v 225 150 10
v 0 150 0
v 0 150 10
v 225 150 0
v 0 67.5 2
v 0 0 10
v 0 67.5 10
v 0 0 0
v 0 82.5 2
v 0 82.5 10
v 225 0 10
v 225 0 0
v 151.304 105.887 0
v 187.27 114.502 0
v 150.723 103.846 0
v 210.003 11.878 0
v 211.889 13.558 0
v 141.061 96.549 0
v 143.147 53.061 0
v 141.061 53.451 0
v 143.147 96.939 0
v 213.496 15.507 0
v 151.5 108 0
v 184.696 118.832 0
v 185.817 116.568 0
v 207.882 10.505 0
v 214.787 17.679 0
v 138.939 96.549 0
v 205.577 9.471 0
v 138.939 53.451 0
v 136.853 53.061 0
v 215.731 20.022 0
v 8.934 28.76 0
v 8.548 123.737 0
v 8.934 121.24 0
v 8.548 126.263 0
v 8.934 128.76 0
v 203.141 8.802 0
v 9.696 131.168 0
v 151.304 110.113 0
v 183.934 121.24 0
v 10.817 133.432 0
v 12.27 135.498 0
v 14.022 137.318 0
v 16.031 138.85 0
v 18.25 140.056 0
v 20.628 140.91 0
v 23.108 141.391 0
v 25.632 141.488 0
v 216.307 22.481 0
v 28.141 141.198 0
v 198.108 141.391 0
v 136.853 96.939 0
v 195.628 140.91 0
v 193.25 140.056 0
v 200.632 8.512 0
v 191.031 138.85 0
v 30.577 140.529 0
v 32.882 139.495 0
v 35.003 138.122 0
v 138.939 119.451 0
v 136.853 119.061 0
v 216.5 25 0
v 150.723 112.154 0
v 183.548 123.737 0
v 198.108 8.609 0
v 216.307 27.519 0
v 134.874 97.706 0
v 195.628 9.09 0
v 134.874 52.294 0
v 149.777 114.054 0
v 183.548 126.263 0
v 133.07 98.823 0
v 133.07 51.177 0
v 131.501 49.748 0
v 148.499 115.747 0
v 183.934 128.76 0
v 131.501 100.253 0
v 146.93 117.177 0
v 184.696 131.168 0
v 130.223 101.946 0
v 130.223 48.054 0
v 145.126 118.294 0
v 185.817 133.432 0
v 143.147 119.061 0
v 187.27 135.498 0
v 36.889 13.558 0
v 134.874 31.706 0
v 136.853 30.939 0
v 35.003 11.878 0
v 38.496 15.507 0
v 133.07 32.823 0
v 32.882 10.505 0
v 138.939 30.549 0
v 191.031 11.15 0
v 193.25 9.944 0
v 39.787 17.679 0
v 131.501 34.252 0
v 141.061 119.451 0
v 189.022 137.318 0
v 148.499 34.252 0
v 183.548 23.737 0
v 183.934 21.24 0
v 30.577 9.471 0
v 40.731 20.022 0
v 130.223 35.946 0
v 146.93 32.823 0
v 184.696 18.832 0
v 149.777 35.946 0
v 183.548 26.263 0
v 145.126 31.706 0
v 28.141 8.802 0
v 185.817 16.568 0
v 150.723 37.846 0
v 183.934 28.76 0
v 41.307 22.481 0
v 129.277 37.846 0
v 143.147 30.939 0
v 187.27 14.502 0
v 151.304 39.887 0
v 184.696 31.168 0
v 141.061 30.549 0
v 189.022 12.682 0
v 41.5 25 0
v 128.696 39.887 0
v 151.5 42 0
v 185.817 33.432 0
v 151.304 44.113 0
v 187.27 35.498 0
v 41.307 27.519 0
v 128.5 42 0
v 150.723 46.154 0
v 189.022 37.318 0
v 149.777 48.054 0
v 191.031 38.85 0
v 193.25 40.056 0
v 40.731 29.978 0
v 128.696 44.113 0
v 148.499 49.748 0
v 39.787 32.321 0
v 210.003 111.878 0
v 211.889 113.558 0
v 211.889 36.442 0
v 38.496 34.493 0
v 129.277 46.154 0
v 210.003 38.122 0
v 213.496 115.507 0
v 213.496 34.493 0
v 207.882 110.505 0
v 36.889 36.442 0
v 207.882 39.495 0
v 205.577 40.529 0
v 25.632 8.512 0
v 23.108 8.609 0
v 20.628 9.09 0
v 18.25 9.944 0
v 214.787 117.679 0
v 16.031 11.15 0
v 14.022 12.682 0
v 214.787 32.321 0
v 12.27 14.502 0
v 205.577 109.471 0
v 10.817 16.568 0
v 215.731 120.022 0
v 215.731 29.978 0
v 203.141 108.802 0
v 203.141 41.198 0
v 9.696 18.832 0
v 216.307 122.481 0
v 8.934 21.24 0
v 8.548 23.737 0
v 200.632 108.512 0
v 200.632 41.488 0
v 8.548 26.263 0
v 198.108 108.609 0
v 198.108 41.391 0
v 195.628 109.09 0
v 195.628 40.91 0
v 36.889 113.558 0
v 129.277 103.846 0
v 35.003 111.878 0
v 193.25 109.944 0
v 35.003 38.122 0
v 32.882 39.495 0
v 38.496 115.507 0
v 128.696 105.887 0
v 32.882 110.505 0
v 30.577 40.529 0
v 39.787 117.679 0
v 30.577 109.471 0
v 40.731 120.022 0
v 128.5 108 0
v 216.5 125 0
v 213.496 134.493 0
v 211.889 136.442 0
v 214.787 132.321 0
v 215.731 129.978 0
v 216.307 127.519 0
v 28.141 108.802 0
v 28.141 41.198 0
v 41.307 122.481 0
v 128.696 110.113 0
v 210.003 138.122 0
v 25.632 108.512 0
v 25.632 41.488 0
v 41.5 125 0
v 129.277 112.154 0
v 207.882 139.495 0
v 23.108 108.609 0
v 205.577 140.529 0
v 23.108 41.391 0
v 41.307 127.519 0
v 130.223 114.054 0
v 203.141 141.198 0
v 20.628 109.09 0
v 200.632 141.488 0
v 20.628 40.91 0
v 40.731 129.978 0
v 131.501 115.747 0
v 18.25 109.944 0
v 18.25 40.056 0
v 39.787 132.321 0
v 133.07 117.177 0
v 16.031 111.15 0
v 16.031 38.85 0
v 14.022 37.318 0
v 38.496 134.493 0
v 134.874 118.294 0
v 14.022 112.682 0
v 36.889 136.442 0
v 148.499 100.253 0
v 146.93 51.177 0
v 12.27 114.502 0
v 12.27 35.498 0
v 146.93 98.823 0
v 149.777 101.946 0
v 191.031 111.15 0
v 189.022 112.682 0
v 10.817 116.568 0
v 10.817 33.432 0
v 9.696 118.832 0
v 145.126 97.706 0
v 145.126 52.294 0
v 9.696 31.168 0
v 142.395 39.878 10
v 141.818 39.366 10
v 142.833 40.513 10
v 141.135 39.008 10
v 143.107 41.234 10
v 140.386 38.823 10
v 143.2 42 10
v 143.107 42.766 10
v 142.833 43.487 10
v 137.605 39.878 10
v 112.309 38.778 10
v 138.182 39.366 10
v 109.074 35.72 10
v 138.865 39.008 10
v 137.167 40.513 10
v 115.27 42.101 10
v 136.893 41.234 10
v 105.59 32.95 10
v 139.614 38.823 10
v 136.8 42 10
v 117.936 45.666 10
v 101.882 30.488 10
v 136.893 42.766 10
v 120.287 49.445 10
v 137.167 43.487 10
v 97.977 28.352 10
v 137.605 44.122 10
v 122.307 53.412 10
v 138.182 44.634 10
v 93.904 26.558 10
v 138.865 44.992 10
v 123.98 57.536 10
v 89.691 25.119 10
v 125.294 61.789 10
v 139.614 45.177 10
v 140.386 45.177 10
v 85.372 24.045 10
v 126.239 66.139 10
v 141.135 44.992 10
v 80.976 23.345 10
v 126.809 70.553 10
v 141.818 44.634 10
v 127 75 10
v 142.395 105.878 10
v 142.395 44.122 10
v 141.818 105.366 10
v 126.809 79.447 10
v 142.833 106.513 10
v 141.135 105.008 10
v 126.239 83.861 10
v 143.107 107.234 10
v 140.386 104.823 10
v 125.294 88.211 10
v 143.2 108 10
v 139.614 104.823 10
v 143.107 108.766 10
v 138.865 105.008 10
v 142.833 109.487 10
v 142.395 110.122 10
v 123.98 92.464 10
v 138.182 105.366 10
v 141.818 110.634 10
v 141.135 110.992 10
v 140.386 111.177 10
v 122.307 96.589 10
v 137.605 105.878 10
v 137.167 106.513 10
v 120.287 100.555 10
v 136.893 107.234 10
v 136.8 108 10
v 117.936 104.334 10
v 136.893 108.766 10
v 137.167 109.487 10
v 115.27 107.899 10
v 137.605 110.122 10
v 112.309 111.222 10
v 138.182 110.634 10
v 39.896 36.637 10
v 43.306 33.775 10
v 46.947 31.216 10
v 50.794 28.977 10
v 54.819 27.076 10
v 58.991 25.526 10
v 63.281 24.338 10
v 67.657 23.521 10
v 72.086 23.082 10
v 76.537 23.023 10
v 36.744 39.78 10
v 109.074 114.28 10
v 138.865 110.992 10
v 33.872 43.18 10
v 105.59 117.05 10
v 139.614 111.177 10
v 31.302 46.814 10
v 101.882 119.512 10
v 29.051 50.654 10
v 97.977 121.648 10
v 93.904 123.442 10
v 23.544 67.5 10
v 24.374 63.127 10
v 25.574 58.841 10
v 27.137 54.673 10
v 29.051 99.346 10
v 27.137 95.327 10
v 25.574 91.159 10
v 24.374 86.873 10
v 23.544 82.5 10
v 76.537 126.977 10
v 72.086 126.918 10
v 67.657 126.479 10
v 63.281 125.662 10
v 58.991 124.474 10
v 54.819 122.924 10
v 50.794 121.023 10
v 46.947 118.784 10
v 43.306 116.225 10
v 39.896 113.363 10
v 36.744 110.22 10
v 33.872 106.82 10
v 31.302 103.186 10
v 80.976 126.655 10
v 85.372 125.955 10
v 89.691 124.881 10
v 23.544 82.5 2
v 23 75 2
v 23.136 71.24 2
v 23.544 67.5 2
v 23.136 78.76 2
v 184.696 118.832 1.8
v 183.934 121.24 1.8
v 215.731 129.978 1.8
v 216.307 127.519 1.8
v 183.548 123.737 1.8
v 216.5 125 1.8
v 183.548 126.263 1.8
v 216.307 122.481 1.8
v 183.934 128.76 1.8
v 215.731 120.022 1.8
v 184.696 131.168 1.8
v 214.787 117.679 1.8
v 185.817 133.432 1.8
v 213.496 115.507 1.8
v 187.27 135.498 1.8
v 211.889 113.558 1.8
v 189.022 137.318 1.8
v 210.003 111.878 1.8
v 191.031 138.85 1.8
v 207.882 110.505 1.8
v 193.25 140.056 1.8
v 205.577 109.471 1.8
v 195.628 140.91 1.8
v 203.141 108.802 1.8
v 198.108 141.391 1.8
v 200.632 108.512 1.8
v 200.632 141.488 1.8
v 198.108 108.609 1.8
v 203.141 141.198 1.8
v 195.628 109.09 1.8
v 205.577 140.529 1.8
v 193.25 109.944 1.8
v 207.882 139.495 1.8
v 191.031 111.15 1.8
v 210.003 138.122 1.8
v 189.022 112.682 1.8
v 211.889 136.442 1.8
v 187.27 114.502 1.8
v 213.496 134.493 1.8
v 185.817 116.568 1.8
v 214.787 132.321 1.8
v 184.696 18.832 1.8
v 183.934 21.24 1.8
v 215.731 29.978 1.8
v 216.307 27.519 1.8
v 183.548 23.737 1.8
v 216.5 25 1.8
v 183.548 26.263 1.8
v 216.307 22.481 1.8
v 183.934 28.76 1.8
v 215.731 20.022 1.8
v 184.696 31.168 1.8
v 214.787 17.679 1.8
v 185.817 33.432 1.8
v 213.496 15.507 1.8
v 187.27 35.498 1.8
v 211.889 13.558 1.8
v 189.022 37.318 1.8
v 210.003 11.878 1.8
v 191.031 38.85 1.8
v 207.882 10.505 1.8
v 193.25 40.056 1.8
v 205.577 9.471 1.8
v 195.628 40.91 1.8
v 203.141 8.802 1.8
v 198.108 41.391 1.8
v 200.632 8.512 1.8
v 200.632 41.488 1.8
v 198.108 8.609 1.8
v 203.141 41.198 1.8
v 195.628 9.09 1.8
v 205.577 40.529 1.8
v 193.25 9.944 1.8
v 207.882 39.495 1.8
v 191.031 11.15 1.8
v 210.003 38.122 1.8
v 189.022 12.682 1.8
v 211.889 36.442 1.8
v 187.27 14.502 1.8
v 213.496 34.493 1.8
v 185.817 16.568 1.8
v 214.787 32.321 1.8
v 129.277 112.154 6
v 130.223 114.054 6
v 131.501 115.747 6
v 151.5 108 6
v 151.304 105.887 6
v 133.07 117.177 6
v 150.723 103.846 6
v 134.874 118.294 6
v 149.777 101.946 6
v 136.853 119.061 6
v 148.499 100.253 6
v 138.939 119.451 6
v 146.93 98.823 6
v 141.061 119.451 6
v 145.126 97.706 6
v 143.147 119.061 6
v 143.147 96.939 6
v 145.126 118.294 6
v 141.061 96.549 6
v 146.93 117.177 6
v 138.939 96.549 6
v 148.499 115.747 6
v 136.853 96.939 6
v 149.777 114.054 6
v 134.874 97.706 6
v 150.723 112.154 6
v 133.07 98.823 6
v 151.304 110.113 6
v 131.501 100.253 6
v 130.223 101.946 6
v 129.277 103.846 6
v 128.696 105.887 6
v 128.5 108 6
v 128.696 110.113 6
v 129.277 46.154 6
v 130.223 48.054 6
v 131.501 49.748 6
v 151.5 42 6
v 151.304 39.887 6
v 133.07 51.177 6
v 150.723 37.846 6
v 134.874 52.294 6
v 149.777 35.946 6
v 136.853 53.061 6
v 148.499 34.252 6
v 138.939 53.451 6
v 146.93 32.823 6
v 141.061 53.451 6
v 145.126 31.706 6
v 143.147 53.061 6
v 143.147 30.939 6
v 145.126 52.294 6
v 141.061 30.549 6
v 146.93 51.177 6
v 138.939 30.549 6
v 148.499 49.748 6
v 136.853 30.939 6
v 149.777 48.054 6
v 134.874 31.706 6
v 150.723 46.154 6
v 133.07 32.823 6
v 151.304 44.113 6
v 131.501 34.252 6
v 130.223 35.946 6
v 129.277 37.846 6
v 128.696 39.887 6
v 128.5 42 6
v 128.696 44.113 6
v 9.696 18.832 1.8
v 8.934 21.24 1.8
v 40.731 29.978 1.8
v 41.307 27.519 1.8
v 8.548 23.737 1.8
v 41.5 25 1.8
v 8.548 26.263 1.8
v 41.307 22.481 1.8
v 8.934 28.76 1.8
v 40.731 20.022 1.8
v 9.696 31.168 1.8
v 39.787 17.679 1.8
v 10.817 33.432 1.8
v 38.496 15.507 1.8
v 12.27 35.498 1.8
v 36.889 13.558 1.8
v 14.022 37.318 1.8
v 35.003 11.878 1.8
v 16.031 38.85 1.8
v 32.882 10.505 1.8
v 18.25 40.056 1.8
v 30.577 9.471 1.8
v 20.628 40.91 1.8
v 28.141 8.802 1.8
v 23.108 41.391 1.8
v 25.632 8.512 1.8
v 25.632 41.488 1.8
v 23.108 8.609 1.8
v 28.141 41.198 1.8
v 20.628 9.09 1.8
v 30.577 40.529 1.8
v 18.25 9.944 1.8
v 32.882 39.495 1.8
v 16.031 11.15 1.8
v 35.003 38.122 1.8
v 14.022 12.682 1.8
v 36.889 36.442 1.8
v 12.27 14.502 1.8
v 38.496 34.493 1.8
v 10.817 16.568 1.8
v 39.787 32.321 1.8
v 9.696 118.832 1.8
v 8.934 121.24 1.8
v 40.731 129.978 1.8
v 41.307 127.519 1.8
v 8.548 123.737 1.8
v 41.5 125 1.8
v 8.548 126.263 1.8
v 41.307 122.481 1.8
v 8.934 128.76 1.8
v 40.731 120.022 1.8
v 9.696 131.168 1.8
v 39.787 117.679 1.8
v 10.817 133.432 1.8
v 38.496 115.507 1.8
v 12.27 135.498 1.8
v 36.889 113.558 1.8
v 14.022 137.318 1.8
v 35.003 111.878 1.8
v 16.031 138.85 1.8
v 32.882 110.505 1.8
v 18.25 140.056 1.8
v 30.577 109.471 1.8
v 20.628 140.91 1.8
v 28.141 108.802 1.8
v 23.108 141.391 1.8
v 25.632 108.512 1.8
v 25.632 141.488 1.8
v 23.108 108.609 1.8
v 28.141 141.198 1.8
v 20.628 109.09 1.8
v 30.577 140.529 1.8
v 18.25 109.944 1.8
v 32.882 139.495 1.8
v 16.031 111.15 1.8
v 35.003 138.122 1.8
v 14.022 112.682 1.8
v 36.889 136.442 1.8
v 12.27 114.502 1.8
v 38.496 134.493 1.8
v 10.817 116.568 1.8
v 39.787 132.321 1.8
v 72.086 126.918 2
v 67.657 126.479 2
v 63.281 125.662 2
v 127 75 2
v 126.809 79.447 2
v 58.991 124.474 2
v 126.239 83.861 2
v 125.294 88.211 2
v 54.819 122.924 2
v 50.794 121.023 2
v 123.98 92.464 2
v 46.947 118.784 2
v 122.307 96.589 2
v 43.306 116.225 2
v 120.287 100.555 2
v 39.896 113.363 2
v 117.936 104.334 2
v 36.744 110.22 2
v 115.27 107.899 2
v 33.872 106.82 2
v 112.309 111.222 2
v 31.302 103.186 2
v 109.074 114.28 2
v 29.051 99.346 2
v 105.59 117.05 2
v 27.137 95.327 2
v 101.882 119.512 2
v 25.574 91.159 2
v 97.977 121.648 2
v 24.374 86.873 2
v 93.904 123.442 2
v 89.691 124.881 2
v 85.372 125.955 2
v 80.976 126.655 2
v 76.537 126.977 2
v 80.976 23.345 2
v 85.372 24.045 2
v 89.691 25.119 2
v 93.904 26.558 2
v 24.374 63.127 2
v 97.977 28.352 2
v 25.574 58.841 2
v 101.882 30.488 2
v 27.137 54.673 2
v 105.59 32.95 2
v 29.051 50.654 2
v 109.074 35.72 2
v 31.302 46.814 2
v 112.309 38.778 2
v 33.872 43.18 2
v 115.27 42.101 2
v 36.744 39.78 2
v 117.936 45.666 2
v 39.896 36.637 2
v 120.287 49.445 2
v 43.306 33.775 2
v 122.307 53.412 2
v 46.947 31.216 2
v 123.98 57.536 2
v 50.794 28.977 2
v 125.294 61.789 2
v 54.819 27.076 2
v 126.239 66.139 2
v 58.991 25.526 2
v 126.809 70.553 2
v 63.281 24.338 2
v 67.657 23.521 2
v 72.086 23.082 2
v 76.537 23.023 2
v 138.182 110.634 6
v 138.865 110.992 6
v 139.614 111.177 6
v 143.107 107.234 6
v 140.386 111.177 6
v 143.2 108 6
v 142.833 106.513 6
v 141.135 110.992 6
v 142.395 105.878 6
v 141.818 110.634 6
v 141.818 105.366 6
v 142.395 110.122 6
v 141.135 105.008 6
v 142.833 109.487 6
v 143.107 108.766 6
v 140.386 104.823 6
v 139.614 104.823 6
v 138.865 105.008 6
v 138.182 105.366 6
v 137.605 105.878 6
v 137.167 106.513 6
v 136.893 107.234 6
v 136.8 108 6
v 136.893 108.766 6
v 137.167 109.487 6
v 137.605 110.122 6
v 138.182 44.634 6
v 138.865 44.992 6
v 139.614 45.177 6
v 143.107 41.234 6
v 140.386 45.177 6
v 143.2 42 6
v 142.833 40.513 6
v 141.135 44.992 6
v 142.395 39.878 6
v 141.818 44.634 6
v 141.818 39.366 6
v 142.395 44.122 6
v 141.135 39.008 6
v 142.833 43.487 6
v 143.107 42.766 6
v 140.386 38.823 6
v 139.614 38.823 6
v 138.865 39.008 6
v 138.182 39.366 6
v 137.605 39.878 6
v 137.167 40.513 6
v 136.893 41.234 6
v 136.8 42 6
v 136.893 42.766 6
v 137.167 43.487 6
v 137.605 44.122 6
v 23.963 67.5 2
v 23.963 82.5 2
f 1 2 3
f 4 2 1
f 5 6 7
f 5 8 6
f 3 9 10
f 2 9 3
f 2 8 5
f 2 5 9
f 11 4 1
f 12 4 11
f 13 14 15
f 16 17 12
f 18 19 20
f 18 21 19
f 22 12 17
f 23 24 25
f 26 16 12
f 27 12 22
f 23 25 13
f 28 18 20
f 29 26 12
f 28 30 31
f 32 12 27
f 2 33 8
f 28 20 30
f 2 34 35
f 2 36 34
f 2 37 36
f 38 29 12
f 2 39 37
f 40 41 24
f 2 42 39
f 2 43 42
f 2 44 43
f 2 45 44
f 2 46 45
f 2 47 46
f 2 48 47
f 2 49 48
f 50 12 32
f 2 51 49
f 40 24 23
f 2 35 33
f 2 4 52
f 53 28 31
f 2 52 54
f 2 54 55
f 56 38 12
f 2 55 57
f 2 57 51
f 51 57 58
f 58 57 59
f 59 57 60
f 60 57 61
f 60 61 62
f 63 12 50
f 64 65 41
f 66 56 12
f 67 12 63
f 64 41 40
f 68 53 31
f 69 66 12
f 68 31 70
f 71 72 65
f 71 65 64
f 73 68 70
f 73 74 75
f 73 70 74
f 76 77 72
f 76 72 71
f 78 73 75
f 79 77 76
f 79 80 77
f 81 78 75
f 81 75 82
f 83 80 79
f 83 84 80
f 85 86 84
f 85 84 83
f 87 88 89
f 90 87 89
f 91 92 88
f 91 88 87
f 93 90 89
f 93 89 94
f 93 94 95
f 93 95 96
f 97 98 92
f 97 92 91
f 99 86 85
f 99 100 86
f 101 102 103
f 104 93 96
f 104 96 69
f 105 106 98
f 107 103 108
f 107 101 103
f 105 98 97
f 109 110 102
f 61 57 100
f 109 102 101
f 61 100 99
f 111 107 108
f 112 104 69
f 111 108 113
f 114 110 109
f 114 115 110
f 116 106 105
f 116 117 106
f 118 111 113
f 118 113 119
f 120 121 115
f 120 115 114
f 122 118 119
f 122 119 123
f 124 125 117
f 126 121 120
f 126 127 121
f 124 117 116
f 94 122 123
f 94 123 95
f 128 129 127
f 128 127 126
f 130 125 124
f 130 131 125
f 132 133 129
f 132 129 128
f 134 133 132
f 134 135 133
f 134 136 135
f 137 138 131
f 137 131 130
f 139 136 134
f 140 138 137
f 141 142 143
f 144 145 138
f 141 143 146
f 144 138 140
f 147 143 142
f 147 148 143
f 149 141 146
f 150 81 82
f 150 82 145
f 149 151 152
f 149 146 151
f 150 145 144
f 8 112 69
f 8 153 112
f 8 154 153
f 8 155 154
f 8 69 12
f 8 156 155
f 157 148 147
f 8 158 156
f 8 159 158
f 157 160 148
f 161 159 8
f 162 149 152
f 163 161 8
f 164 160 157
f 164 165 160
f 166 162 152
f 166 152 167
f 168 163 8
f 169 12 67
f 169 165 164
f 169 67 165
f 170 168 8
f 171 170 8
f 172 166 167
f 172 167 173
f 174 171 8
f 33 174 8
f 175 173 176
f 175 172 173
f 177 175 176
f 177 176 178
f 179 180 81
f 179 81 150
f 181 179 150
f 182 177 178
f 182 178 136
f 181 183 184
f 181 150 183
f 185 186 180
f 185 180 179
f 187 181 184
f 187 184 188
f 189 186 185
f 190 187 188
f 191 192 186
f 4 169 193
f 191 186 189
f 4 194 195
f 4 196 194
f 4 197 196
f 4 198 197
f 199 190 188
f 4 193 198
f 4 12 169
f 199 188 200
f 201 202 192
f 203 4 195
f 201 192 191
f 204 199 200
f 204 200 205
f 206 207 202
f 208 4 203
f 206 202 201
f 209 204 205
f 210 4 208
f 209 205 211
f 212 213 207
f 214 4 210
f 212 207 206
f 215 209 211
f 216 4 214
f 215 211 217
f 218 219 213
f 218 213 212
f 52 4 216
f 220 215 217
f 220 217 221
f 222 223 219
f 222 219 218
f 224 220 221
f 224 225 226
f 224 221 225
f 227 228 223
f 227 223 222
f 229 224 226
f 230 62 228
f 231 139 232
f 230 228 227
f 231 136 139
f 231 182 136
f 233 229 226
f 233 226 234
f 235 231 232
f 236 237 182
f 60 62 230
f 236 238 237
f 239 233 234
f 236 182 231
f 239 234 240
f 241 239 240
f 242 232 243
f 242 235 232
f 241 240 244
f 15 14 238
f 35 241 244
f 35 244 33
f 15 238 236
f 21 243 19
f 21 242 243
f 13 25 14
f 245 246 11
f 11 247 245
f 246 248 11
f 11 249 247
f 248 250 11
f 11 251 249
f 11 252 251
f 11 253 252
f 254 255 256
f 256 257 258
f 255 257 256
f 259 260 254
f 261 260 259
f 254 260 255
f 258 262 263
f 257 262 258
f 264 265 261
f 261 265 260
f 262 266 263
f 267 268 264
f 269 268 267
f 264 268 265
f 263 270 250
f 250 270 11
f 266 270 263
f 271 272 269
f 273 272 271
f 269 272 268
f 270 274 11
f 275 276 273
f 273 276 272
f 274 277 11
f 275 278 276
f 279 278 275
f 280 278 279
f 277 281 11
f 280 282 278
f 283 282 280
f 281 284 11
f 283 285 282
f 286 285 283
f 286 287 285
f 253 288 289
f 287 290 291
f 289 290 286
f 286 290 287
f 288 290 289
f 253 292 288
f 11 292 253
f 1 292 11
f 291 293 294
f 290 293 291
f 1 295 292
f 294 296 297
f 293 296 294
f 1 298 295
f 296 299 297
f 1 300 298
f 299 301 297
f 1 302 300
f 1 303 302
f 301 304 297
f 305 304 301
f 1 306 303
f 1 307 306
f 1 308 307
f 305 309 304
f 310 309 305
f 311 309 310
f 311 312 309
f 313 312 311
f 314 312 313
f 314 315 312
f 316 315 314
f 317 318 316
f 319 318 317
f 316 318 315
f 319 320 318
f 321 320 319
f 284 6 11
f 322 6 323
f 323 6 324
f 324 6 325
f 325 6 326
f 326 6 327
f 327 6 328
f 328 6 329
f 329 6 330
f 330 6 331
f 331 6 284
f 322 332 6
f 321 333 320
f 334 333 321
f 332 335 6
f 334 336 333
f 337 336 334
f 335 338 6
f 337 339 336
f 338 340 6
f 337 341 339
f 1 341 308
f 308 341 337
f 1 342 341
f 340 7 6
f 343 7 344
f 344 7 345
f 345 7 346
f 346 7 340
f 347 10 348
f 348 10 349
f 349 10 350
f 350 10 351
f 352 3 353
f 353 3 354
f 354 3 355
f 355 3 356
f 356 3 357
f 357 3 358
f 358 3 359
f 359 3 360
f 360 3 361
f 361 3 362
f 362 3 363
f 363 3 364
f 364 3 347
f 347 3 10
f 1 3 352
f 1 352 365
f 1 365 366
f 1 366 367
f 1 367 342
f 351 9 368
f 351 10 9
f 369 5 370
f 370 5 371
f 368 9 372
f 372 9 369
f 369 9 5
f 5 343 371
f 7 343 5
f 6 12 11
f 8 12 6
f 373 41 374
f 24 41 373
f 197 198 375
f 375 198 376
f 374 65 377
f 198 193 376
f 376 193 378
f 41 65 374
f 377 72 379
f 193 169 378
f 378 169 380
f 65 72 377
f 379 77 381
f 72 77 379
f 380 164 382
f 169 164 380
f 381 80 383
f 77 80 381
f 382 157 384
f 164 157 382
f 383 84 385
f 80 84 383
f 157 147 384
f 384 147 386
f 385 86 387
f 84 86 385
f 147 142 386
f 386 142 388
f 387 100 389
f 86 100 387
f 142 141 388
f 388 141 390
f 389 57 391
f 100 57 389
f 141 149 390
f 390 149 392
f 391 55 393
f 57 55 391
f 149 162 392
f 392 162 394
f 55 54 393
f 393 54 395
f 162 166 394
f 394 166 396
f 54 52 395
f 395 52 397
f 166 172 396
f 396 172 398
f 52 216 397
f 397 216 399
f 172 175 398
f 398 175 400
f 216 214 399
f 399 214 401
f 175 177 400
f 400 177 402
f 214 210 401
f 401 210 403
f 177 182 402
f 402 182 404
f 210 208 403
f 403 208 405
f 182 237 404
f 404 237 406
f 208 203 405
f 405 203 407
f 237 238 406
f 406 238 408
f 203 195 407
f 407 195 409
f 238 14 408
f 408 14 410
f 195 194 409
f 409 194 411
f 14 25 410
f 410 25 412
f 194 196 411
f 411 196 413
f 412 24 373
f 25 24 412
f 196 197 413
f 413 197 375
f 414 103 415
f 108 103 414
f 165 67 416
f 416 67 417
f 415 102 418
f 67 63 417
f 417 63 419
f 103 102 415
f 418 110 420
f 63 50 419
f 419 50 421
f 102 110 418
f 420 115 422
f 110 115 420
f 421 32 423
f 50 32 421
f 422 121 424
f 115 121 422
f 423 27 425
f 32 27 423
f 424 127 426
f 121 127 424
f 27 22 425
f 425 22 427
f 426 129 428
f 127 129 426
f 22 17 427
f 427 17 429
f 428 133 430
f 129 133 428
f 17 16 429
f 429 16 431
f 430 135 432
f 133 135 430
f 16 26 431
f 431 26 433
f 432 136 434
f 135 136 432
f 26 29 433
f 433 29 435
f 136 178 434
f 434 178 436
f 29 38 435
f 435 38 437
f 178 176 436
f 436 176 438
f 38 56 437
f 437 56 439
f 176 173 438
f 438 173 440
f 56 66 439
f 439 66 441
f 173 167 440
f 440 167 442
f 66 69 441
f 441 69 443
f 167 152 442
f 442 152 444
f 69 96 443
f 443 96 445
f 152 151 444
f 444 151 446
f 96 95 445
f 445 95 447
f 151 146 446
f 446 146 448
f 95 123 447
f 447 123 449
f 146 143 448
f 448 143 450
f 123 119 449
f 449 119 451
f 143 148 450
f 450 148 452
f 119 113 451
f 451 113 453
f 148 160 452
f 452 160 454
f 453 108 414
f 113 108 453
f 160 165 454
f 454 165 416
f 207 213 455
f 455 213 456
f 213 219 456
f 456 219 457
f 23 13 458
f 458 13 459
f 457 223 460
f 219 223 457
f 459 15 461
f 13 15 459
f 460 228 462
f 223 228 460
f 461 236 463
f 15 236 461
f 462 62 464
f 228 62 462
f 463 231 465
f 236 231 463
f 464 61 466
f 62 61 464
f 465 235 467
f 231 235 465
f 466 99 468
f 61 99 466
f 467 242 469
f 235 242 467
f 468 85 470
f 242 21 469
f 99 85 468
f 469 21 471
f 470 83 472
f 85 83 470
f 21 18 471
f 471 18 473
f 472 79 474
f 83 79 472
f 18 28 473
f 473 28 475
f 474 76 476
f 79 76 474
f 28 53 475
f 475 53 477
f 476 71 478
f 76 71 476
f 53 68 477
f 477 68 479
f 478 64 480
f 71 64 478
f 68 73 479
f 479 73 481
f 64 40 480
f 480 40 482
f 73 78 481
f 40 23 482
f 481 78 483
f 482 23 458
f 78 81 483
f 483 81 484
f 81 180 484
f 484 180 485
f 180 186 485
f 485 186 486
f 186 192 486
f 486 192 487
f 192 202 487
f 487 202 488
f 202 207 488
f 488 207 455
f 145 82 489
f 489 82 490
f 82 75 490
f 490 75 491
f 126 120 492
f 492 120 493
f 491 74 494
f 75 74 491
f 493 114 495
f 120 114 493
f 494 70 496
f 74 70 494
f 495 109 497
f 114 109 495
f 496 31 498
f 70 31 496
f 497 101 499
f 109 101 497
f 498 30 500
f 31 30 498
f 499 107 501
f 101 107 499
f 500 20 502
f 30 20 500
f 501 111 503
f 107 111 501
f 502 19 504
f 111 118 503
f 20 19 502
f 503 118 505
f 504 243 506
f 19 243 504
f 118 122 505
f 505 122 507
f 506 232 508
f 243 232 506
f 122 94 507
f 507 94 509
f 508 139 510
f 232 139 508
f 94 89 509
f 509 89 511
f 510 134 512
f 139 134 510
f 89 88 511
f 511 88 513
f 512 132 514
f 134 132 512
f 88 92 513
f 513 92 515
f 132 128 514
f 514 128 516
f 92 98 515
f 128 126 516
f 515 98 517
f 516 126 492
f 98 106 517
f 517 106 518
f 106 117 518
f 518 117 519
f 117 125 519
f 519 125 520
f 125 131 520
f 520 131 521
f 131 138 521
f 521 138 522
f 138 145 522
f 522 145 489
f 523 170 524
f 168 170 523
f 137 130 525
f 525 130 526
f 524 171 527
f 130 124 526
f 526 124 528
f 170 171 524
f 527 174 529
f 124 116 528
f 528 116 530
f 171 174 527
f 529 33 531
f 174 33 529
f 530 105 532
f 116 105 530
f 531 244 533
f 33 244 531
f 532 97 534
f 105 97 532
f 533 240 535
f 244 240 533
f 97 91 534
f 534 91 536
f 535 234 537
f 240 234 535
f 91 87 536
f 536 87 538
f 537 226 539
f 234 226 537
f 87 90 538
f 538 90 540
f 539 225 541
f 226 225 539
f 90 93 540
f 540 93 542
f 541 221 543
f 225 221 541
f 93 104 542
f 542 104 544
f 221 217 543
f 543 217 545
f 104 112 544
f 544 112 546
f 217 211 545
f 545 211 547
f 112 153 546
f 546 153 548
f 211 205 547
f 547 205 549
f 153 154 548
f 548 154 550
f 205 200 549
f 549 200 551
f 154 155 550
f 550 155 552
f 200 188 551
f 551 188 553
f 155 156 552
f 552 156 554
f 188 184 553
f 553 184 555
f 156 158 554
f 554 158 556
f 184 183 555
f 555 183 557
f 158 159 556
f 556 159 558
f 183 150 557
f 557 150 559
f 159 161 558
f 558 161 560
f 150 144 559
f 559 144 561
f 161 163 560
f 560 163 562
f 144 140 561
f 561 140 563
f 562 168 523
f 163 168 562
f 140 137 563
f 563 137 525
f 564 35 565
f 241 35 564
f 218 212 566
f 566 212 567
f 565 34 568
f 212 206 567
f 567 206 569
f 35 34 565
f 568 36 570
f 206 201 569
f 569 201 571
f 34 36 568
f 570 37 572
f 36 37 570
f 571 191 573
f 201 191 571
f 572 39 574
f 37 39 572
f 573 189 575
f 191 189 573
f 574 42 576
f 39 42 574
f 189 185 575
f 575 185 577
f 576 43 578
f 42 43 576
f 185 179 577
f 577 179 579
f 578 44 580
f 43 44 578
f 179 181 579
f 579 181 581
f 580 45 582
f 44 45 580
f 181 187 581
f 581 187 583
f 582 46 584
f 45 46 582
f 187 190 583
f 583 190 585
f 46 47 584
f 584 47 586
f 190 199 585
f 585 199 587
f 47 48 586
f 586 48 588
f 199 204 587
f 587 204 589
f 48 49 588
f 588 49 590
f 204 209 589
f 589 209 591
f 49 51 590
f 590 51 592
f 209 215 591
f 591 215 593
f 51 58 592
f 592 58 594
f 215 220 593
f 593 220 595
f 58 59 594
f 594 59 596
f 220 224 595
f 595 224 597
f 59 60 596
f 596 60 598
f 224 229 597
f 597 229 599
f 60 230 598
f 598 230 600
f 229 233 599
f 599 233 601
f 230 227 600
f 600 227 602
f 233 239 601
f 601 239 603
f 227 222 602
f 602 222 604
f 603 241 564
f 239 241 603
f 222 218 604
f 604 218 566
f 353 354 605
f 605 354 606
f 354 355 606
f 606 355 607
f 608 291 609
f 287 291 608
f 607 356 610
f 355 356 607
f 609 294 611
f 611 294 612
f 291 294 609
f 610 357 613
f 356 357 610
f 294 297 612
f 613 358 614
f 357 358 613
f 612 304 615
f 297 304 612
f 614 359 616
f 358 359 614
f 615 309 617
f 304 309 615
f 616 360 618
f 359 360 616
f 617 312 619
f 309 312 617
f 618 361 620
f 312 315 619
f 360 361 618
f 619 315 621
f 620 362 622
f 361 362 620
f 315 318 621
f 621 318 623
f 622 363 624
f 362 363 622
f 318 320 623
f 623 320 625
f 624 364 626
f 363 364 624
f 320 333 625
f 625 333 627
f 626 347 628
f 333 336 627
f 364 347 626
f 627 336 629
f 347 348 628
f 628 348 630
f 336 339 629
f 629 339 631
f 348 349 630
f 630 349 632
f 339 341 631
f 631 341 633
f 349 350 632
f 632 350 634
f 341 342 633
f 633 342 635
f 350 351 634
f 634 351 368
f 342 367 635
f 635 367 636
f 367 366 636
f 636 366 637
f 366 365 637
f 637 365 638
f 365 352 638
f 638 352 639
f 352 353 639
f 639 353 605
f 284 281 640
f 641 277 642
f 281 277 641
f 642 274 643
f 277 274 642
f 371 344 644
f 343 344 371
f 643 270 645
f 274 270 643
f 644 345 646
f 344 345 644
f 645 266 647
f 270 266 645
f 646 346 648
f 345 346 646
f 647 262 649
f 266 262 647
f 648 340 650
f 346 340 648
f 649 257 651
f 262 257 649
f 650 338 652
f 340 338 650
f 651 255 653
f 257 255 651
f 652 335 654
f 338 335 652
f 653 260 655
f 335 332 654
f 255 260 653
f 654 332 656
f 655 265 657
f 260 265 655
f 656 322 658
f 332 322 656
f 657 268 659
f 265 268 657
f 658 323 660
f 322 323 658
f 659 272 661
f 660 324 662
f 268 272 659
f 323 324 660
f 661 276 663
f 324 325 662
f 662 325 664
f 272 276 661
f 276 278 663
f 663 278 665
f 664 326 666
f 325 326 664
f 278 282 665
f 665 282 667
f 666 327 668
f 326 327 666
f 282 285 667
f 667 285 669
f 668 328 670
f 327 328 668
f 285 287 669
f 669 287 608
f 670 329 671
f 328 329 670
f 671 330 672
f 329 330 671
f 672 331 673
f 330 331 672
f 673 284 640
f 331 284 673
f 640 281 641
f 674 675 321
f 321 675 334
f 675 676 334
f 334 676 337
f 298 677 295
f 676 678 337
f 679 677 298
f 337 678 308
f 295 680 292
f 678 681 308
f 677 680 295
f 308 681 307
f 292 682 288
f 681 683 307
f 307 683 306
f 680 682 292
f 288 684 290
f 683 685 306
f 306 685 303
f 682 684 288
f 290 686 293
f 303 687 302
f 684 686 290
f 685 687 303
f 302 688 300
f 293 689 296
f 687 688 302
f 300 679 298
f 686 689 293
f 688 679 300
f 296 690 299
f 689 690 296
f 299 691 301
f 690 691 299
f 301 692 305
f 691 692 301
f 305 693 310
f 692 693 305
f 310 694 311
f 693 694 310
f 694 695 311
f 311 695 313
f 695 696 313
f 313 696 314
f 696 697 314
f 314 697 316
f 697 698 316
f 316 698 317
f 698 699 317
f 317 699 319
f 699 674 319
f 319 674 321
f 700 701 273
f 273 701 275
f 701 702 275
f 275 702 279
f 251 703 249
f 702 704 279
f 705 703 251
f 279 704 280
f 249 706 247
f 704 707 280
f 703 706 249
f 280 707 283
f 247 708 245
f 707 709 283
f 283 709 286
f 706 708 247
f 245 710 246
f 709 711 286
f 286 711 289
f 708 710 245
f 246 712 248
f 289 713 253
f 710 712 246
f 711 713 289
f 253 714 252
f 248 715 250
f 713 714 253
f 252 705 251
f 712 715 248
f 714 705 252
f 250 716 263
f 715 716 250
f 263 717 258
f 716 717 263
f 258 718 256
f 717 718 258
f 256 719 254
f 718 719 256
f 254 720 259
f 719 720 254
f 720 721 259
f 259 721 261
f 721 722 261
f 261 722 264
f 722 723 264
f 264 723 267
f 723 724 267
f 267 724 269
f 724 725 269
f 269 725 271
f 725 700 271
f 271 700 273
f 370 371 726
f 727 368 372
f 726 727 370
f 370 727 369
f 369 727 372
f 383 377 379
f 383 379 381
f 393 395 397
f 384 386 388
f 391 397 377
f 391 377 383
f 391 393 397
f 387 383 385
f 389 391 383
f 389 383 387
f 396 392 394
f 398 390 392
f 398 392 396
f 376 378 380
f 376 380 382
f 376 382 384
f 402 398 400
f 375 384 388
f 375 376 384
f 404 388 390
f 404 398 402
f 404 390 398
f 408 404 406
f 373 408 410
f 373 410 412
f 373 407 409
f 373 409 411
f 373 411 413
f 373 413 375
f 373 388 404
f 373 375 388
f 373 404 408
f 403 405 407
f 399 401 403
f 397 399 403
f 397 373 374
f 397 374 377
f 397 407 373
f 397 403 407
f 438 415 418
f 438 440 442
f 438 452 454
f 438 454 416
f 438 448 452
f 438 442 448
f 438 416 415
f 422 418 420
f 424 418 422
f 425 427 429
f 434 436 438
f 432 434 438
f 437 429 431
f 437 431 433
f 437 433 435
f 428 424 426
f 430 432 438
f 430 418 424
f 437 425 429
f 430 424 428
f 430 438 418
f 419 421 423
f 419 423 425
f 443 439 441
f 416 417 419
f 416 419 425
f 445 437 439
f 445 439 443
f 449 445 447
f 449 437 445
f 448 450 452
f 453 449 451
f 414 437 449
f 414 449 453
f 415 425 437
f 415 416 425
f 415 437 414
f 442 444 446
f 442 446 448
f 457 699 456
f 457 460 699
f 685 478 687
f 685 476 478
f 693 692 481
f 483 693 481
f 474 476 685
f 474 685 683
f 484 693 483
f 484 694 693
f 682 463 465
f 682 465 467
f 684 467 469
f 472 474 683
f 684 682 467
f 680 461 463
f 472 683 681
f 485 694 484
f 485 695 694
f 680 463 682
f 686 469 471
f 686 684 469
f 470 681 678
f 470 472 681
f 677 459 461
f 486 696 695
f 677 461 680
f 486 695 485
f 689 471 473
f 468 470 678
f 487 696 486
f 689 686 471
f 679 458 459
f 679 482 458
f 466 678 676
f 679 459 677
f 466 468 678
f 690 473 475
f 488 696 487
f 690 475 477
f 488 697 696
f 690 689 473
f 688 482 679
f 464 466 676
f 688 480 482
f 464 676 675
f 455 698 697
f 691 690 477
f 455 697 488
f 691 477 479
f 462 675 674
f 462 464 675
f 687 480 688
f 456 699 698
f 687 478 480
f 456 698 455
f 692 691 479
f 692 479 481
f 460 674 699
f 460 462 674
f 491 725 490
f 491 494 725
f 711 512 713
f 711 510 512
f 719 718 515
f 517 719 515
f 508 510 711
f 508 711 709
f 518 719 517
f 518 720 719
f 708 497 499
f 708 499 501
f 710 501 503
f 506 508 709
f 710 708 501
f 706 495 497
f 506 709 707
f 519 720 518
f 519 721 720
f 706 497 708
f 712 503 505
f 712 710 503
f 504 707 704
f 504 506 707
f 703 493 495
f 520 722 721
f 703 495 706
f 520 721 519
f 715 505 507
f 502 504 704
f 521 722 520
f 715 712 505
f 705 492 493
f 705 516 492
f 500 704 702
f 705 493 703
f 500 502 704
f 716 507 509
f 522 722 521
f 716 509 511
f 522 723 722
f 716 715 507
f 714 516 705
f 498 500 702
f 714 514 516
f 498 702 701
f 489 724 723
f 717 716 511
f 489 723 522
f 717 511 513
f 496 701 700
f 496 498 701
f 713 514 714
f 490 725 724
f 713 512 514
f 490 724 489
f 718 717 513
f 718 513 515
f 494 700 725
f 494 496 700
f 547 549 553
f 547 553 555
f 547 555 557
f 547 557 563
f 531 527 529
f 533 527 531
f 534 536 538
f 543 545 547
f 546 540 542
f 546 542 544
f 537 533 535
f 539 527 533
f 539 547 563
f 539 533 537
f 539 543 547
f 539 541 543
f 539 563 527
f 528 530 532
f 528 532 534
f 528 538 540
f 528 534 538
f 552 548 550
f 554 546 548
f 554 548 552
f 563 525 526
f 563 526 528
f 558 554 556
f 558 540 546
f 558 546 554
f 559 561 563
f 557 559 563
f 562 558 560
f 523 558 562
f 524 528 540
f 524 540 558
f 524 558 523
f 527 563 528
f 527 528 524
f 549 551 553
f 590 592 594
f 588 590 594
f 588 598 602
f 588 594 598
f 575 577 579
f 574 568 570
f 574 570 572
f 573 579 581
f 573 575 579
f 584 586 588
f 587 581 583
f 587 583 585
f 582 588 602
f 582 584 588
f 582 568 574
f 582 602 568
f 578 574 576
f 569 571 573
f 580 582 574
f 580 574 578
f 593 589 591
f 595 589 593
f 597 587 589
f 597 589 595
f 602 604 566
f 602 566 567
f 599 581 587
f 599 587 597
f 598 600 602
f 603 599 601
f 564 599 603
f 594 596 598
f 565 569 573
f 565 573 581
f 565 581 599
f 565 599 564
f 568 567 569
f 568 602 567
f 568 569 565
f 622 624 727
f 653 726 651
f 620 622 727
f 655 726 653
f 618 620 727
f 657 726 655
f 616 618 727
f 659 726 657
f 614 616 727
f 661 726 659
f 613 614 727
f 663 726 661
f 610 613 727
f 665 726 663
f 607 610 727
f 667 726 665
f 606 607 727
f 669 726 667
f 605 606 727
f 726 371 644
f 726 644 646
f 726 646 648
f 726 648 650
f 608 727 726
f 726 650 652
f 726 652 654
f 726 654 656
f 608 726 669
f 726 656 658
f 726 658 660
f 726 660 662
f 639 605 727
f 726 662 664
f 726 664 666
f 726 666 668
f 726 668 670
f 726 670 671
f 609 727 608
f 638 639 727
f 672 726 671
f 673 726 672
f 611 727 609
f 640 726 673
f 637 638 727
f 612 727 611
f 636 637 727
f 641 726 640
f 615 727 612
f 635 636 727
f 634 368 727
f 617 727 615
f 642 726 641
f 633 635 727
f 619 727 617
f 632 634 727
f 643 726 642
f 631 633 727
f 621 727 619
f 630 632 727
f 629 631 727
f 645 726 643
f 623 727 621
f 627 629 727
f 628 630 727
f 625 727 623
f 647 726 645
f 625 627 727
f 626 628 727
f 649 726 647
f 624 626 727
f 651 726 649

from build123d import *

# Parameters (mm, degrees)
SKETCH_W        = 225
SKETCH_H        = 150
PAD_DEPTH       = 10
SKETCH005_R     = 11.5
POCKET_DEPTH    = 6
COPYSKETCH006_R = 3.2
POCKET001_DEPTH = 10
SKETCH006_R     = 16.5
POCKET002_DEPTH = 1.8
SKETCH007_R     = 52
POCKET003_DEPTH = 8
SKETCH008_W     = 23.96291
SKETCH008_H     = 15
POCKET004_DEPTH = 8


with BuildPart() as part:
    # Sketch → Pad (new body)
    with BuildSketch(Plane.XY):
        with Locations((112.5, 75)):
            Rectangle(SKETCH_W, SKETCH_H)
    extrude(amount=PAD_DEPTH)

    # Sketch005 → Pocket (cut)
    with BuildSketch(Plane(origin=(0, 0, 0), x_dir=(1, 0, 0), z_dir=(0, 0, -1))):
        with Locations((140, -42)):
            Circle(SKETCH005_R)
        with Locations((140, -108)):
            Circle(SKETCH005_R)
    extrude(amount=-POCKET_DEPTH, mode=Mode.SUBTRACT)

    # CopySketch006 → Pocket001 (cut)
    with BuildSketch(Plane(origin=(0, 0, 0), x_dir=(1, 0, 0), z_dir=(0, 0, -1))):
        with Locations((140, -42)):
            Circle(COPYSKETCH006_R)
        with Locations((140, -108)):
            Circle(COPYSKETCH006_R)
    extrude(amount=-POCKET001_DEPTH, mode=Mode.SUBTRACT)

    # Sketch006 (on Face4 of Pocket001) → Pocket002 (cut)
    with BuildSketch(Plane(origin=(0, 0, 0), x_dir=(1, 0, 0), z_dir=(0, 0, -1))):
        with Locations((25, -25)):
            Circle(SKETCH006_R)
        with Locations((25, -125)):
            Circle(SKETCH006_R)
        with Locations((200, -25)):
            Circle(SKETCH006_R)
        with Locations((200, -125)):
            Circle(SKETCH006_R)
    extrude(amount=-POCKET002_DEPTH, mode=Mode.SUBTRACT)

    # Sketch007 (on Face5 of Pocket002) → Pocket003 (cut)
    with BuildSketch(Plane.XY.offset(10)):
        with Locations((75, 75)):
            Circle(SKETCH007_R)
    extrude(amount=-POCKET003_DEPTH, mode=Mode.SUBTRACT)

    # Sketch008 (on Face5 of Pocket003) → Pocket004 (cut)
    with BuildSketch(Plane.XY.offset(10)):
        with Locations((11.981453, 75)):
            Rectangle(SKETCH008_W, SKETCH008_H)
    extrude(amount=-POCKET004_DEPTH, mode=Mode.SUBTRACT)


solid = part.part
